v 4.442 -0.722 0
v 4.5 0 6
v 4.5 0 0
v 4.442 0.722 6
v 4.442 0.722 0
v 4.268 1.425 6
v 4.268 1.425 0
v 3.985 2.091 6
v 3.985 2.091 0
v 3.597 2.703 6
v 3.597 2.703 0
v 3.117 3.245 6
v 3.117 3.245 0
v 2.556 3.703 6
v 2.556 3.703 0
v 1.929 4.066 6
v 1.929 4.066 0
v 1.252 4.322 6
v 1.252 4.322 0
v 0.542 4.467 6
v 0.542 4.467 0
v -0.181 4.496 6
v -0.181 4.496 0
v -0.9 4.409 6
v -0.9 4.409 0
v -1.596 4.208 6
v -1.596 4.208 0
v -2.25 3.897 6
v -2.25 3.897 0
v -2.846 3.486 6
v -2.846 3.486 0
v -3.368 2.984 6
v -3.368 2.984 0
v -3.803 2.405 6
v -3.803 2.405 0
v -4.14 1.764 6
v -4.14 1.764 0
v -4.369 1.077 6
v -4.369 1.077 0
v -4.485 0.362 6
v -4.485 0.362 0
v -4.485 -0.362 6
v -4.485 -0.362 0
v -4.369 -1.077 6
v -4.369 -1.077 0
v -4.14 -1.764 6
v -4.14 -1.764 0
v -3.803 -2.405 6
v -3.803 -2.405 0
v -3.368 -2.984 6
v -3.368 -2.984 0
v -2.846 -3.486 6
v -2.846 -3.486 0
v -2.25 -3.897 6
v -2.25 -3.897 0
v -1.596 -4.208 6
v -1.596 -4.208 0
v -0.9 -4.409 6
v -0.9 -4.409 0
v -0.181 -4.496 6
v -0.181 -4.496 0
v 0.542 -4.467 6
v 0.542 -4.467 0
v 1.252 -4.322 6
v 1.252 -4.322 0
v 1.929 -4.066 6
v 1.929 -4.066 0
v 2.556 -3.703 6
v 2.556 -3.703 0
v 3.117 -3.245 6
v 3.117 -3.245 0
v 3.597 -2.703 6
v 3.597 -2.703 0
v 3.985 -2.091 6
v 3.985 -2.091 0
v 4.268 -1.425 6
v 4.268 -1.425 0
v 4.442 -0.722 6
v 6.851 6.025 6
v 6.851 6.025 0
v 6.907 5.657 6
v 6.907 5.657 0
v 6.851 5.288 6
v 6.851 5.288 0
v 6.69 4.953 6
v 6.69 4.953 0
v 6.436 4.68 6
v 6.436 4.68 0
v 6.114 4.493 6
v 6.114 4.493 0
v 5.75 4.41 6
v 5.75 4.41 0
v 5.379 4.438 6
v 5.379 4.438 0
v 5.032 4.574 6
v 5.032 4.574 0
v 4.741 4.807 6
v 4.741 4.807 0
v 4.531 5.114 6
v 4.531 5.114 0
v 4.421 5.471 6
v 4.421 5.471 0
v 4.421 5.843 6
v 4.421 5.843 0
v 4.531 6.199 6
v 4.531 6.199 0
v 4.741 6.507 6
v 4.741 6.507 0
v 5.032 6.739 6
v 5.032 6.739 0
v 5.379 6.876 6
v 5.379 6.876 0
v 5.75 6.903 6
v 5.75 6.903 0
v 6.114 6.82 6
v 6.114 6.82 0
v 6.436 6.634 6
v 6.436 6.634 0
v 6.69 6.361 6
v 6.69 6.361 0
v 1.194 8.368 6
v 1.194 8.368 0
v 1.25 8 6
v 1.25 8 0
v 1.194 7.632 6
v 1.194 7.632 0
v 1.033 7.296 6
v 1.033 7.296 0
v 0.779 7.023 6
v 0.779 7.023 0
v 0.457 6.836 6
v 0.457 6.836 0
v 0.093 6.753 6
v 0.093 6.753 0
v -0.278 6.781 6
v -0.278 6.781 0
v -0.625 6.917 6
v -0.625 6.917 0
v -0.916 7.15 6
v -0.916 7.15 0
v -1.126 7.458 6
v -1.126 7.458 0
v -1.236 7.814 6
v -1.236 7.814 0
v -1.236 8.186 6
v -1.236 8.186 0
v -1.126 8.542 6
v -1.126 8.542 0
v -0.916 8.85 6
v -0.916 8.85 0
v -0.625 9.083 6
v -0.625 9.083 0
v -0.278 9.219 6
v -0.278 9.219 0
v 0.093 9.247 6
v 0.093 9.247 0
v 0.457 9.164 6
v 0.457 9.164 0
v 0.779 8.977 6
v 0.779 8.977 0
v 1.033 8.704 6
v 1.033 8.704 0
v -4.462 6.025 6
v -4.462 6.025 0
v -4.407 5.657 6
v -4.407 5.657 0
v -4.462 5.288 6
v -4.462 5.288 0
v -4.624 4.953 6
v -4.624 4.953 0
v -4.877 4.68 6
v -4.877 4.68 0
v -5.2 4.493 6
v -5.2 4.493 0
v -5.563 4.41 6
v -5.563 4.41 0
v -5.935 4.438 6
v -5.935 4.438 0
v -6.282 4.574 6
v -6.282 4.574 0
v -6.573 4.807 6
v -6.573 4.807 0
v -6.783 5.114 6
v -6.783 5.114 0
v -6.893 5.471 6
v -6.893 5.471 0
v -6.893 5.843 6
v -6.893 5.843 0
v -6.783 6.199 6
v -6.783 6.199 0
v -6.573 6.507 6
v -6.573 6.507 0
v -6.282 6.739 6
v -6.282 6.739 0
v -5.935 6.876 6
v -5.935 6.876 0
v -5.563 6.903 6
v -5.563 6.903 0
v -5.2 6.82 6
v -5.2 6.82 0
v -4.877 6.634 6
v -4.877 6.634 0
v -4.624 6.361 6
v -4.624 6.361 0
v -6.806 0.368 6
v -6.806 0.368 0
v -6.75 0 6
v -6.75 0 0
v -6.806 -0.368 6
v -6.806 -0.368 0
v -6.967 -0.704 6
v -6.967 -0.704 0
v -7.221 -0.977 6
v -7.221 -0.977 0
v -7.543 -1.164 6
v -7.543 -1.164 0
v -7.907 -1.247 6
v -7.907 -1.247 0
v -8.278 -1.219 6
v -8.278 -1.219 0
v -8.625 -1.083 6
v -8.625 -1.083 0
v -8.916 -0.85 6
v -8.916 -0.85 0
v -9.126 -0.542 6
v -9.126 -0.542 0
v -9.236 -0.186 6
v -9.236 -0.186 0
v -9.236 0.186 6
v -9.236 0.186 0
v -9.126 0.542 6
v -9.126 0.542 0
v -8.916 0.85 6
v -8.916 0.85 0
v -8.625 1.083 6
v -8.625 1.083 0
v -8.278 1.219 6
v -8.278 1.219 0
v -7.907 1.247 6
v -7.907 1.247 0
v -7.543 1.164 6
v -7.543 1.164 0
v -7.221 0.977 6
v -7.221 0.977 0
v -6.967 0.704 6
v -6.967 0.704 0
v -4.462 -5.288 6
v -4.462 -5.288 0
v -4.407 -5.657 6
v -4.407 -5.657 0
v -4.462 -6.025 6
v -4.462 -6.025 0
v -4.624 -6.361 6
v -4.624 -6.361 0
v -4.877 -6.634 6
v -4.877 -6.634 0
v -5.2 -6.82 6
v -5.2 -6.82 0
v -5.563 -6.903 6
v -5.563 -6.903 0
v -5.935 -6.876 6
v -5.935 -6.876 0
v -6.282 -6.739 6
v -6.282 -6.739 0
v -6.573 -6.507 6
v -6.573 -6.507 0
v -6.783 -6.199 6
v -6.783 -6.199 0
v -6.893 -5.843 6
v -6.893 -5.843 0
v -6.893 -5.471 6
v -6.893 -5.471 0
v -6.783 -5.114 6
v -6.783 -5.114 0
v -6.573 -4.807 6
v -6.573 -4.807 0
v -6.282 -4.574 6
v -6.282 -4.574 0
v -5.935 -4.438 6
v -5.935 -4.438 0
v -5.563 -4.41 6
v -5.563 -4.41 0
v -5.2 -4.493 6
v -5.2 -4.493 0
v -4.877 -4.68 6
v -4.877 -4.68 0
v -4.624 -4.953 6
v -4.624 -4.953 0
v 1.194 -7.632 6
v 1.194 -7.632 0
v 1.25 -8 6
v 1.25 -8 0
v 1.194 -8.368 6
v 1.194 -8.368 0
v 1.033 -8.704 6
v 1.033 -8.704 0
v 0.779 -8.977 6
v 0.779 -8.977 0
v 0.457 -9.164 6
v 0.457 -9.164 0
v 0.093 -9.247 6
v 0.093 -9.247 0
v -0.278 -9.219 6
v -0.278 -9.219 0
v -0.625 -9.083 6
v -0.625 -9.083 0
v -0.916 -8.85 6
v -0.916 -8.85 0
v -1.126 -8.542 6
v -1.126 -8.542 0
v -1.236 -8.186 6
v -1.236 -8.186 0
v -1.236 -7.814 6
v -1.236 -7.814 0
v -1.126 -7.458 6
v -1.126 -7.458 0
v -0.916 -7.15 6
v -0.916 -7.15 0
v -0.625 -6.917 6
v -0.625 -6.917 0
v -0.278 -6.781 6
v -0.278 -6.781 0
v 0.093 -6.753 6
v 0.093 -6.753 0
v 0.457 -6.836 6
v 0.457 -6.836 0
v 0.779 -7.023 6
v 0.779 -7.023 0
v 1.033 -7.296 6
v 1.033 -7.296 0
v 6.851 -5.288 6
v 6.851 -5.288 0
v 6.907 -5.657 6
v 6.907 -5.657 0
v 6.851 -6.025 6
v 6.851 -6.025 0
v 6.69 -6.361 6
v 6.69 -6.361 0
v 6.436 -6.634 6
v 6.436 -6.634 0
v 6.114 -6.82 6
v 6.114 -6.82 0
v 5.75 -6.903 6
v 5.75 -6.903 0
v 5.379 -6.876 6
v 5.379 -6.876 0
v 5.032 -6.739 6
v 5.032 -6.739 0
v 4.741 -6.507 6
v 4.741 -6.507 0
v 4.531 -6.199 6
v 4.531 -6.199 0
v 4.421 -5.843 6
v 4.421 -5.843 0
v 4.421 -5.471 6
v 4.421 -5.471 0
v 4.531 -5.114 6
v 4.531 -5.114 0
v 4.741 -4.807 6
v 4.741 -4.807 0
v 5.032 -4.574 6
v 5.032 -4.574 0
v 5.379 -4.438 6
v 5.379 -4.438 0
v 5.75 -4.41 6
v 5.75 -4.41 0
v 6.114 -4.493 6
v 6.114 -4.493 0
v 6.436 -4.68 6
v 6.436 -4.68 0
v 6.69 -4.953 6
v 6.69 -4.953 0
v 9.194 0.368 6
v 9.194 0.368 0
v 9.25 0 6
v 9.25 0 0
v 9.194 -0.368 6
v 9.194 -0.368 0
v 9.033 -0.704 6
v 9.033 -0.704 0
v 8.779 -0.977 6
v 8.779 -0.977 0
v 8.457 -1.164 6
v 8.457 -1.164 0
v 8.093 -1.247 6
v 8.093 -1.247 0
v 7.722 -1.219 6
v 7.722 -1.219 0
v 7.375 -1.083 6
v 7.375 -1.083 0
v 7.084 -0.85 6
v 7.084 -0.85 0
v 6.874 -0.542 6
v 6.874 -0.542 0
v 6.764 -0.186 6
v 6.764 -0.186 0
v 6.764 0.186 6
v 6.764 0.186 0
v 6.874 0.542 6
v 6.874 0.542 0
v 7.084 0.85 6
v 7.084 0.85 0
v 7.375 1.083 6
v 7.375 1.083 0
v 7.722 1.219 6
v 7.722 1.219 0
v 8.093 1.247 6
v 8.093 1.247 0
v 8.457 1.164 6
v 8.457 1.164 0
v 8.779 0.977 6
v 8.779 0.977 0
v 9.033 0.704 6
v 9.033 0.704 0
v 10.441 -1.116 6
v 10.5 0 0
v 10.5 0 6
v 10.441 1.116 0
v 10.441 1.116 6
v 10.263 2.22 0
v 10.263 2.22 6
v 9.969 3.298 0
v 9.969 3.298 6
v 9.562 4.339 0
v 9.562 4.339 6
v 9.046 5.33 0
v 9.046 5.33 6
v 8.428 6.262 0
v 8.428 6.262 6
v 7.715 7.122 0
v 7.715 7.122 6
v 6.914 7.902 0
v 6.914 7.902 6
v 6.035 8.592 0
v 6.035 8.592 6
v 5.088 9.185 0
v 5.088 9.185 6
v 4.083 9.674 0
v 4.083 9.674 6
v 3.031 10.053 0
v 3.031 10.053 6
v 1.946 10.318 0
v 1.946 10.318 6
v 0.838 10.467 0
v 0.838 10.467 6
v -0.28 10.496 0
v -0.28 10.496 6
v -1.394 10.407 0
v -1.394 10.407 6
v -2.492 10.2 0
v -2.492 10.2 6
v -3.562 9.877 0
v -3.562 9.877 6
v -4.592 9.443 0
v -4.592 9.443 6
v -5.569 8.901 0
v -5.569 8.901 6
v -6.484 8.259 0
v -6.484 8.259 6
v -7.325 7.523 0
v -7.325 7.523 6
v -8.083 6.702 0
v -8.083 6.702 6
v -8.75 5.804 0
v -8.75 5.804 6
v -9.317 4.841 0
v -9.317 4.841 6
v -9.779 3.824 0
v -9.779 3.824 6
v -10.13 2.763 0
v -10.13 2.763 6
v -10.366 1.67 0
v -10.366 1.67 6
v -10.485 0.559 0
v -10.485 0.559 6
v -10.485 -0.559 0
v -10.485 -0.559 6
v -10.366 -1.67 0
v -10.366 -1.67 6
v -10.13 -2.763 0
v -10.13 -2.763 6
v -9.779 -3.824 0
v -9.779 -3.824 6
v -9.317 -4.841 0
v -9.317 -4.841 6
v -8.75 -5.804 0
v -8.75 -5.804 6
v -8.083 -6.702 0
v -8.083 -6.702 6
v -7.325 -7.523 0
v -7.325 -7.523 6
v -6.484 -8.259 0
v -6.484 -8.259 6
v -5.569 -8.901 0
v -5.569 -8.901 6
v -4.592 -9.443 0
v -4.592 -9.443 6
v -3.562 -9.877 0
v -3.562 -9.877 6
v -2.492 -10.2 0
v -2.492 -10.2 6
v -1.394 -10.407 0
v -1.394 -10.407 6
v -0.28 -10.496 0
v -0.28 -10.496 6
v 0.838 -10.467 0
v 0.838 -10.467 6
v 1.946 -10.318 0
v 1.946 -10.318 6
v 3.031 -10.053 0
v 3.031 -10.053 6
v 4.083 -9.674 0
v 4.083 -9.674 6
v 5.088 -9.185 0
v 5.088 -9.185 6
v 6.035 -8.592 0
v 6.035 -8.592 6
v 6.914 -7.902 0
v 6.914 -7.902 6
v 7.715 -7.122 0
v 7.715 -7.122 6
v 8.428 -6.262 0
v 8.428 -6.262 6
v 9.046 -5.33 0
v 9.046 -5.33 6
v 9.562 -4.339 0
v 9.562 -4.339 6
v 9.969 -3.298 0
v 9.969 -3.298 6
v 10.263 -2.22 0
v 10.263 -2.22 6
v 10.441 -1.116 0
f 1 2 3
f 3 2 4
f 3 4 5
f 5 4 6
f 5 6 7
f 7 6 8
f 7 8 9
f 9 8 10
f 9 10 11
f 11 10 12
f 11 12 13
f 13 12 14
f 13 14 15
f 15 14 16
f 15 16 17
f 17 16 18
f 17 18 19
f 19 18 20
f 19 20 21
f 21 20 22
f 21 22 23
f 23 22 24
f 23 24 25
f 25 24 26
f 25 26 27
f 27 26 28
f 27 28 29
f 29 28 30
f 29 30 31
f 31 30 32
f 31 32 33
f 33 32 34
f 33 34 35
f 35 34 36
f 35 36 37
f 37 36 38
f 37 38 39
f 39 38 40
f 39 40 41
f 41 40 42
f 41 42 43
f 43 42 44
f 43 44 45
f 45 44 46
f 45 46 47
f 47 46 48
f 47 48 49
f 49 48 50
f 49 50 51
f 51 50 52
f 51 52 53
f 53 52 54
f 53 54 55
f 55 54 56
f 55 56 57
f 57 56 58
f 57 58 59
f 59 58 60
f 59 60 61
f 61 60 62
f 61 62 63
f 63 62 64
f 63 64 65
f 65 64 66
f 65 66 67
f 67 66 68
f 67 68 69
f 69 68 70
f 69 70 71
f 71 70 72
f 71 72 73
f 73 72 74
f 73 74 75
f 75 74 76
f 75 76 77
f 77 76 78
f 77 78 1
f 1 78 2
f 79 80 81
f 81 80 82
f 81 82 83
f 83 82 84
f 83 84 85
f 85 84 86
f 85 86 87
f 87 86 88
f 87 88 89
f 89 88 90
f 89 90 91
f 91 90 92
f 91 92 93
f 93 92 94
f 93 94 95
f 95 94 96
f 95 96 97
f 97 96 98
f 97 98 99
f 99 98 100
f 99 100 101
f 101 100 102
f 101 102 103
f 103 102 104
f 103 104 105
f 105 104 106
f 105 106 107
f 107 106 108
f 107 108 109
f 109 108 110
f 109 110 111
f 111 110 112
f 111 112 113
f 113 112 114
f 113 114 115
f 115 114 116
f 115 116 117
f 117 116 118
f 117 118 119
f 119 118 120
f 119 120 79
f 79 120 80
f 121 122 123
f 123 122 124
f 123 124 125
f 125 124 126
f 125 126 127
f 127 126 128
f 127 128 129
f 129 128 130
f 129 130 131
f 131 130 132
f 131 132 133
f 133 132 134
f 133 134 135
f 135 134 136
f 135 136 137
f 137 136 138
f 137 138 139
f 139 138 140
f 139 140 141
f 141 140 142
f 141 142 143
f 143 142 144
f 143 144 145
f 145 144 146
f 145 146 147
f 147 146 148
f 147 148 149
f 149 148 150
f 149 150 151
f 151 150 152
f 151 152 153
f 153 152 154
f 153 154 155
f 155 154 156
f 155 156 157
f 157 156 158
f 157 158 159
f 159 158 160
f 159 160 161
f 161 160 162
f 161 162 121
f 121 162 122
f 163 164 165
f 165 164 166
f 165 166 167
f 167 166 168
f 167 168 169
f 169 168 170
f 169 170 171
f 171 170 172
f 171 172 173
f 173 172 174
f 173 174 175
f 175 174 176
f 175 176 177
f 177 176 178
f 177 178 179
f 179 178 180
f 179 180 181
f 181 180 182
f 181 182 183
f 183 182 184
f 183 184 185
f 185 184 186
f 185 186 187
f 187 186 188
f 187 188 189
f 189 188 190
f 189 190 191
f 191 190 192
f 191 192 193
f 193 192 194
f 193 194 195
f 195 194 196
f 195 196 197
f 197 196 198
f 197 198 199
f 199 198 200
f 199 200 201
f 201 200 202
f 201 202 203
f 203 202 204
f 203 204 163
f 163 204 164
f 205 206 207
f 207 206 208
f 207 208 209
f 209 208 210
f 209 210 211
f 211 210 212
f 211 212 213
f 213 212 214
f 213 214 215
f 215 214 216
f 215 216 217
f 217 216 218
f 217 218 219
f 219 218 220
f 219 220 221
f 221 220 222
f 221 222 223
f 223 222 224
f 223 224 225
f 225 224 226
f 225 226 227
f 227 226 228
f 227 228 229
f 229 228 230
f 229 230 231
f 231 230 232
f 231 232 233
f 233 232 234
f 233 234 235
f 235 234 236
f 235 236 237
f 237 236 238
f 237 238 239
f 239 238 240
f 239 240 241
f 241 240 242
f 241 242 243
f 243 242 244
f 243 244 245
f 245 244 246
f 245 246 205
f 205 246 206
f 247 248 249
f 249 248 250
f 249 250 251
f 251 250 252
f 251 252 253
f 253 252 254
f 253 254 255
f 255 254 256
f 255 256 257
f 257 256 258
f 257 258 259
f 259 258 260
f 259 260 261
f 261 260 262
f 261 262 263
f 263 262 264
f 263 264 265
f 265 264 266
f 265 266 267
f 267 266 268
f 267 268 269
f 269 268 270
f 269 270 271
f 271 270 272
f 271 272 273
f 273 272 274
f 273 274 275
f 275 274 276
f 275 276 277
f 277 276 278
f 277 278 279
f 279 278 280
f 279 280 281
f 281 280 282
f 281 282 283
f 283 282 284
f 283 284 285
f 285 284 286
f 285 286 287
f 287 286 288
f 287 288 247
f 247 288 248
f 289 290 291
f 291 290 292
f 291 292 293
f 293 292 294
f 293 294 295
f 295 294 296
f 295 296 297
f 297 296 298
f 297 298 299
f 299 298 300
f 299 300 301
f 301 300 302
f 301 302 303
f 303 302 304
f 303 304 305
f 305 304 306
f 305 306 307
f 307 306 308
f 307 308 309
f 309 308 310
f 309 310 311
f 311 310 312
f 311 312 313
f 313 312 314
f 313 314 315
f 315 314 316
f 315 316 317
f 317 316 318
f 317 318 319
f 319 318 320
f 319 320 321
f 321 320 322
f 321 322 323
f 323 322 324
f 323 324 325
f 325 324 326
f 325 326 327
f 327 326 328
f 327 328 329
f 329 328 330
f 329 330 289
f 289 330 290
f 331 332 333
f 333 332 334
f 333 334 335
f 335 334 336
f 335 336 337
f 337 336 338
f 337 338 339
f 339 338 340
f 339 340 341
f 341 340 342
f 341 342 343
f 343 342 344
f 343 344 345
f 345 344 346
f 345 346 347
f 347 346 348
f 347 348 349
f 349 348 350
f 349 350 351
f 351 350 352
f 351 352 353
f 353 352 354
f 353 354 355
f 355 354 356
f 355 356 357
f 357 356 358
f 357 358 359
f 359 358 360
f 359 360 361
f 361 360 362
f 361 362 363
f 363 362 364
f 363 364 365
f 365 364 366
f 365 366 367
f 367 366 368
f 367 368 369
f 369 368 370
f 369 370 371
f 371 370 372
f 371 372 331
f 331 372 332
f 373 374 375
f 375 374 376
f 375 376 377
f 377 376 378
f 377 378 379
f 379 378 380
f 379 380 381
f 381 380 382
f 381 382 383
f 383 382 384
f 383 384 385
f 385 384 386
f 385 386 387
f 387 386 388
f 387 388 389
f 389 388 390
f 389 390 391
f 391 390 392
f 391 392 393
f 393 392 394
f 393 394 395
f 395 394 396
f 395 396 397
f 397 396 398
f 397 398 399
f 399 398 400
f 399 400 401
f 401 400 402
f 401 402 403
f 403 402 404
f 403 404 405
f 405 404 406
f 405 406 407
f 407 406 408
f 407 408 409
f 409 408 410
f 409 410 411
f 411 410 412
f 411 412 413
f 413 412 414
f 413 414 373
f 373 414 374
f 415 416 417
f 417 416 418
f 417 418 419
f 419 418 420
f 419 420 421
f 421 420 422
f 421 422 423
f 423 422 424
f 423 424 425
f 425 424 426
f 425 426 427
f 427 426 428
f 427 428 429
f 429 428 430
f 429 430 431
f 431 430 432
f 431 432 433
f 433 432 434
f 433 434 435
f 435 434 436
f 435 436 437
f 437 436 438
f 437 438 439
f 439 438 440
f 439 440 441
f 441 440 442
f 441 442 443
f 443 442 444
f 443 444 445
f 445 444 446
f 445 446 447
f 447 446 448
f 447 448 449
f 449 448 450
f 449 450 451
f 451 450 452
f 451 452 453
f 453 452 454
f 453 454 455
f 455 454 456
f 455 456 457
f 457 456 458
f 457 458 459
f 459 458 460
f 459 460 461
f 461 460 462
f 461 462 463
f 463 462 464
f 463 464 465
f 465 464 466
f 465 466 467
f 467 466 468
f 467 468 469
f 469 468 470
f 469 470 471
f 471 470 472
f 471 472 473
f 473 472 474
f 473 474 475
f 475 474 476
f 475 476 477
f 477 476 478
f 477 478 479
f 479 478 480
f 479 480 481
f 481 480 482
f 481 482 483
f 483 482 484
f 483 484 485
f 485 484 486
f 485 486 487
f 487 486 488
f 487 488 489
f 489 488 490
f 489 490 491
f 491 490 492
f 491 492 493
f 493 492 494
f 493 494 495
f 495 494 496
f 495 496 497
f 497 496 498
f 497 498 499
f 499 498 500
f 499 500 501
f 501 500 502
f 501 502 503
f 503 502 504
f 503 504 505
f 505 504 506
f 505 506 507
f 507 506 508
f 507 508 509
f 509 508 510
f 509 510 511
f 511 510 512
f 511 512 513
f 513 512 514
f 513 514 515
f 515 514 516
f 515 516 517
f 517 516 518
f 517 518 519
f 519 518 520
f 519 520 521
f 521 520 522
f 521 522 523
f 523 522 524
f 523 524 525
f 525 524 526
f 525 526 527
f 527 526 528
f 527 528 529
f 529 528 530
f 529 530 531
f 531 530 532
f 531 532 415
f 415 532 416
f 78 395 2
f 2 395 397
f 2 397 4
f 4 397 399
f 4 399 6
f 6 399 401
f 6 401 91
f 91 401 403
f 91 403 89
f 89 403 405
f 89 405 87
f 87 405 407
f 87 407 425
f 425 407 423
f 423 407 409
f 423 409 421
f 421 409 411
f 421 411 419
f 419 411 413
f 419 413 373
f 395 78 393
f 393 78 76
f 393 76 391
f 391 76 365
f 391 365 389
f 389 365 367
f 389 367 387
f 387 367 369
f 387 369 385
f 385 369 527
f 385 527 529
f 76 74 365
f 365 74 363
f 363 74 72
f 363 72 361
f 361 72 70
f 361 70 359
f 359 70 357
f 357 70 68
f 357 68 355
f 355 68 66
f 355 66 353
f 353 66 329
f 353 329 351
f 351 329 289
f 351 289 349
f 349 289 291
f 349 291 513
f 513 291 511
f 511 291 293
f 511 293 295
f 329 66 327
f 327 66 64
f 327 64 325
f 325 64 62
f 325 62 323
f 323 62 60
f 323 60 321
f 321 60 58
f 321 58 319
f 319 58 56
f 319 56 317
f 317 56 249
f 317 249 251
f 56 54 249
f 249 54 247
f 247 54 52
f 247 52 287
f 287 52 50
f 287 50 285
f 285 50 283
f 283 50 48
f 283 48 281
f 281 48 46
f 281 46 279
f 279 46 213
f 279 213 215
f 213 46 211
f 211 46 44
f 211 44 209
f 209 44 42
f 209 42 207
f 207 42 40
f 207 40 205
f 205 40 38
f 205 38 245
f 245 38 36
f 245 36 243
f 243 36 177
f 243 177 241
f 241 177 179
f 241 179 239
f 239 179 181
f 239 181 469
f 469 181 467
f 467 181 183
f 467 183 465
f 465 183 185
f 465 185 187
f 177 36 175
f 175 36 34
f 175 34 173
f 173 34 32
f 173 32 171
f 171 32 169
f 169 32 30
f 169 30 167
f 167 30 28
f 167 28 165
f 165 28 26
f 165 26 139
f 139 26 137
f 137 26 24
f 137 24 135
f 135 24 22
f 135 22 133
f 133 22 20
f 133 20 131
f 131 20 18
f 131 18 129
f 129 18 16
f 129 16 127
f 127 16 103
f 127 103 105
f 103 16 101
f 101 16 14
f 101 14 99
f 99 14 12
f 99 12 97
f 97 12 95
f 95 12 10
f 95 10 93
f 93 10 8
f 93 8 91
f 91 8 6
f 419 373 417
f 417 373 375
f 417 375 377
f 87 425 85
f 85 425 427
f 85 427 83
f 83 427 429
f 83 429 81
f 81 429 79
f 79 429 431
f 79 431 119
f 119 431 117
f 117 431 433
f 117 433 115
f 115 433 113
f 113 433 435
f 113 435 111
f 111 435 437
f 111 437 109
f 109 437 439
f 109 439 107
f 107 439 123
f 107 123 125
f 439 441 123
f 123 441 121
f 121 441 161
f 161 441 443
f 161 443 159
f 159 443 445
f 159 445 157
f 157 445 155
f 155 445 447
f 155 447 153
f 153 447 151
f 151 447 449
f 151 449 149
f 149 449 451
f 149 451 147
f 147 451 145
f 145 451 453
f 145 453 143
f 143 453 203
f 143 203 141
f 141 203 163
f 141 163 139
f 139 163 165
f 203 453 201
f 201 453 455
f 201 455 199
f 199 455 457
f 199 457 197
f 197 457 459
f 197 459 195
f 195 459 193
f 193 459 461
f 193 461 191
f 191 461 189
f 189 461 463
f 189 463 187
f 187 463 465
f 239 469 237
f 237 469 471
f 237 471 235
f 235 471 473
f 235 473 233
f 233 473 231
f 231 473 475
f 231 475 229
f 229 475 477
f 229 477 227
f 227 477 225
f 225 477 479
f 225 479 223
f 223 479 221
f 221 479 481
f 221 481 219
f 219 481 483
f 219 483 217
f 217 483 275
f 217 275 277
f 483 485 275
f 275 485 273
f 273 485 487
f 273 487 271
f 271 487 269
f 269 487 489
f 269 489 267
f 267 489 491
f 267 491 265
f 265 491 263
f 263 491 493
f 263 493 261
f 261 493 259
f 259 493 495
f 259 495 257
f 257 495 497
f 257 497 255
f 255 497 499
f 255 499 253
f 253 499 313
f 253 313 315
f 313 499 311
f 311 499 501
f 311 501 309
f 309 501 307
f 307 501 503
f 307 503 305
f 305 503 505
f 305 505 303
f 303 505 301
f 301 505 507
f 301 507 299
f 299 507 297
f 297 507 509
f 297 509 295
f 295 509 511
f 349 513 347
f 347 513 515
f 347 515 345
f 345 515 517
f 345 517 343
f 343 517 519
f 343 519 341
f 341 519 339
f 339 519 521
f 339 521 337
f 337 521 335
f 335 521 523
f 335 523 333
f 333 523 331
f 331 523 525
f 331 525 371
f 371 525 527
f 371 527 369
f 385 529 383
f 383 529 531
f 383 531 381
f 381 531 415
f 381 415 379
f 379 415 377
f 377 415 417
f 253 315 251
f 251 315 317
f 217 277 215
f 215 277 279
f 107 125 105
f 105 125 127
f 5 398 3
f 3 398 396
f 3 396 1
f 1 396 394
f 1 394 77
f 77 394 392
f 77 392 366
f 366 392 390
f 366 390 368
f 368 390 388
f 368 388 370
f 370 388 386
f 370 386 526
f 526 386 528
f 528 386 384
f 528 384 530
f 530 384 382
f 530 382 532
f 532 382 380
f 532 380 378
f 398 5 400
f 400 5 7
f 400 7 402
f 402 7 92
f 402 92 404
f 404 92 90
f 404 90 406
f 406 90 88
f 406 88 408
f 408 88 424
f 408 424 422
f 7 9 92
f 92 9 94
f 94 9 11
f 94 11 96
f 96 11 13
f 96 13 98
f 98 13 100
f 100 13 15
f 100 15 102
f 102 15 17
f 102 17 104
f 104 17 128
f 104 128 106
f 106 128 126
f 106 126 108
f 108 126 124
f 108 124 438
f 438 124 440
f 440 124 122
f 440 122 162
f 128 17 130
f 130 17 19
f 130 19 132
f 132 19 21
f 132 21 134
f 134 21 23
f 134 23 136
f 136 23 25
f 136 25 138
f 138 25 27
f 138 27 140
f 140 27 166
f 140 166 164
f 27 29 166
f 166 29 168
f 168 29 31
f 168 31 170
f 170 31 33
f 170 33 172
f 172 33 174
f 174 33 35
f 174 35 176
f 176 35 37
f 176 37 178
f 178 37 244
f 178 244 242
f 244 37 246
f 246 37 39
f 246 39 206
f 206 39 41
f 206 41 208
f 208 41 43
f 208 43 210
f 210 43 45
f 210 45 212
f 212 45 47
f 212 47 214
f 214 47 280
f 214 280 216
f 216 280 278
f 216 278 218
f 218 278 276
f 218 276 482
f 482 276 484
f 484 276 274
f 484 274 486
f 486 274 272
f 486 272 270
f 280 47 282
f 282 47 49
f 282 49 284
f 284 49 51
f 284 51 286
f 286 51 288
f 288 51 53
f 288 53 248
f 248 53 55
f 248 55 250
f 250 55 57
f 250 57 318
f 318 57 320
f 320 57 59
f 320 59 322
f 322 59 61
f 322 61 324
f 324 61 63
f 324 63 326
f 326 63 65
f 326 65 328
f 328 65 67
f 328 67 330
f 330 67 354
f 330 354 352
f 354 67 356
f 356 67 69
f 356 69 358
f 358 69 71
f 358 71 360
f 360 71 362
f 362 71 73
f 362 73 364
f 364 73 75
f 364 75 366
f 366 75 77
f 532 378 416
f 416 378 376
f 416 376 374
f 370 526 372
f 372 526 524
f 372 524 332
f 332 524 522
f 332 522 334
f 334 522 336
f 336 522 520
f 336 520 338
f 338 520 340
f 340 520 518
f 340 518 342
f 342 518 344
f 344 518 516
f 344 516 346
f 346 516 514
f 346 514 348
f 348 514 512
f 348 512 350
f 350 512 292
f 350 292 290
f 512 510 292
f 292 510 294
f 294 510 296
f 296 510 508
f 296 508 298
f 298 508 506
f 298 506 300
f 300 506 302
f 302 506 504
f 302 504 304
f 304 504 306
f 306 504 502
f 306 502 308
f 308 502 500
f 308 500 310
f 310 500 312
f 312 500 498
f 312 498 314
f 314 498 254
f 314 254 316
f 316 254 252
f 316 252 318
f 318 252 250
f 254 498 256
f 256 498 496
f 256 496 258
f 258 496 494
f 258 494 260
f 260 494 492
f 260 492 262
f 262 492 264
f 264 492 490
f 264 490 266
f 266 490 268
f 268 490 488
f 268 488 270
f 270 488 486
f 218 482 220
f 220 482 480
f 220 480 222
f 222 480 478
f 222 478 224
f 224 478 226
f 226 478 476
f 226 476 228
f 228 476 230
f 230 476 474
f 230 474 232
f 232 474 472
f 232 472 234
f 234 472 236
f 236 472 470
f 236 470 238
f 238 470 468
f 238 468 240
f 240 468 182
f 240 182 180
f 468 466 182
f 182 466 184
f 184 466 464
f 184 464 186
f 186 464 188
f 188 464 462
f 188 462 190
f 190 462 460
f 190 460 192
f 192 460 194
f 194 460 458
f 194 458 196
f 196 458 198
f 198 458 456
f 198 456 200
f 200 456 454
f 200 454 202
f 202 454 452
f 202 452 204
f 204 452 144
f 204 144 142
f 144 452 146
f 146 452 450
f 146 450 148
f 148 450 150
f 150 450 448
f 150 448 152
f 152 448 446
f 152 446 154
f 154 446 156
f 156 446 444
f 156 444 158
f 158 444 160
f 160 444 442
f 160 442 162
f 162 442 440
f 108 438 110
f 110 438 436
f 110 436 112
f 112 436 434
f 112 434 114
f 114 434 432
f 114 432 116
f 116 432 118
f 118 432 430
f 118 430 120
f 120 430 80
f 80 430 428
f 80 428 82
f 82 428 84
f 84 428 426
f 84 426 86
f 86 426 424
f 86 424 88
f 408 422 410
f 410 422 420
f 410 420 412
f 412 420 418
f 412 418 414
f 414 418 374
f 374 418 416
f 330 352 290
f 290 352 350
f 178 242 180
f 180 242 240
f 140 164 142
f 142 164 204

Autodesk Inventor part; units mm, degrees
ref_plane "YZ Plane" through (0, 0, 0) normal (1, 0, 0) x (0, 1, 0)
ref_plane "XZ Plane" through (0, 0, 0) normal (0, 1, 0) x (-1, 0, 0)
ref_plane "XY Plane" through (0, 0, 0) normal (0, 0, 1) x (1, 0, 0)
sketch "Sketch1" plane through (0, 0, 0) normal (0, 0, 1) x (1, 0, 0)
  circle A0 centre (0, 0) radius 10.5
  line L0 (0, 0) -> (8, 0)
  circle A1 centre (8, 0) radius 1.25
  circle A2 centre (5.6569, 5.6569) radius 1.25
  circle A3 centre (0, 8) radius 1.25
  circle A4 centre (-5.6569, 5.6569) radius 1.25
  circle A5 centre (-8, 0) radius 1.25
  circle A6 centre (-5.6569, -5.6569) radius 1.25
  circle A7 centre (0, -8) radius 1.25
  circle A8 centre (5.6569, -5.6569) radius 1.25
  dimension "d0" = 21
  dimension "d1" = 8
  dimension "d2" = 2.5
  dimension "d5" = 360
extrude "Extrusion1" add sketch "Sketch1" along normal blind 6
sketch "Sketch2" plane through (0, 0, 6) normal (0, 0, 1) x (1, 0, 0)
  circle A0 centre (0, 0) radius 4.5
  dimension "d9" = 9
extrude "Extrusion2" cut sketch "Sketch2" against normal blind 6
properties part number "Motor_horn_mount"
